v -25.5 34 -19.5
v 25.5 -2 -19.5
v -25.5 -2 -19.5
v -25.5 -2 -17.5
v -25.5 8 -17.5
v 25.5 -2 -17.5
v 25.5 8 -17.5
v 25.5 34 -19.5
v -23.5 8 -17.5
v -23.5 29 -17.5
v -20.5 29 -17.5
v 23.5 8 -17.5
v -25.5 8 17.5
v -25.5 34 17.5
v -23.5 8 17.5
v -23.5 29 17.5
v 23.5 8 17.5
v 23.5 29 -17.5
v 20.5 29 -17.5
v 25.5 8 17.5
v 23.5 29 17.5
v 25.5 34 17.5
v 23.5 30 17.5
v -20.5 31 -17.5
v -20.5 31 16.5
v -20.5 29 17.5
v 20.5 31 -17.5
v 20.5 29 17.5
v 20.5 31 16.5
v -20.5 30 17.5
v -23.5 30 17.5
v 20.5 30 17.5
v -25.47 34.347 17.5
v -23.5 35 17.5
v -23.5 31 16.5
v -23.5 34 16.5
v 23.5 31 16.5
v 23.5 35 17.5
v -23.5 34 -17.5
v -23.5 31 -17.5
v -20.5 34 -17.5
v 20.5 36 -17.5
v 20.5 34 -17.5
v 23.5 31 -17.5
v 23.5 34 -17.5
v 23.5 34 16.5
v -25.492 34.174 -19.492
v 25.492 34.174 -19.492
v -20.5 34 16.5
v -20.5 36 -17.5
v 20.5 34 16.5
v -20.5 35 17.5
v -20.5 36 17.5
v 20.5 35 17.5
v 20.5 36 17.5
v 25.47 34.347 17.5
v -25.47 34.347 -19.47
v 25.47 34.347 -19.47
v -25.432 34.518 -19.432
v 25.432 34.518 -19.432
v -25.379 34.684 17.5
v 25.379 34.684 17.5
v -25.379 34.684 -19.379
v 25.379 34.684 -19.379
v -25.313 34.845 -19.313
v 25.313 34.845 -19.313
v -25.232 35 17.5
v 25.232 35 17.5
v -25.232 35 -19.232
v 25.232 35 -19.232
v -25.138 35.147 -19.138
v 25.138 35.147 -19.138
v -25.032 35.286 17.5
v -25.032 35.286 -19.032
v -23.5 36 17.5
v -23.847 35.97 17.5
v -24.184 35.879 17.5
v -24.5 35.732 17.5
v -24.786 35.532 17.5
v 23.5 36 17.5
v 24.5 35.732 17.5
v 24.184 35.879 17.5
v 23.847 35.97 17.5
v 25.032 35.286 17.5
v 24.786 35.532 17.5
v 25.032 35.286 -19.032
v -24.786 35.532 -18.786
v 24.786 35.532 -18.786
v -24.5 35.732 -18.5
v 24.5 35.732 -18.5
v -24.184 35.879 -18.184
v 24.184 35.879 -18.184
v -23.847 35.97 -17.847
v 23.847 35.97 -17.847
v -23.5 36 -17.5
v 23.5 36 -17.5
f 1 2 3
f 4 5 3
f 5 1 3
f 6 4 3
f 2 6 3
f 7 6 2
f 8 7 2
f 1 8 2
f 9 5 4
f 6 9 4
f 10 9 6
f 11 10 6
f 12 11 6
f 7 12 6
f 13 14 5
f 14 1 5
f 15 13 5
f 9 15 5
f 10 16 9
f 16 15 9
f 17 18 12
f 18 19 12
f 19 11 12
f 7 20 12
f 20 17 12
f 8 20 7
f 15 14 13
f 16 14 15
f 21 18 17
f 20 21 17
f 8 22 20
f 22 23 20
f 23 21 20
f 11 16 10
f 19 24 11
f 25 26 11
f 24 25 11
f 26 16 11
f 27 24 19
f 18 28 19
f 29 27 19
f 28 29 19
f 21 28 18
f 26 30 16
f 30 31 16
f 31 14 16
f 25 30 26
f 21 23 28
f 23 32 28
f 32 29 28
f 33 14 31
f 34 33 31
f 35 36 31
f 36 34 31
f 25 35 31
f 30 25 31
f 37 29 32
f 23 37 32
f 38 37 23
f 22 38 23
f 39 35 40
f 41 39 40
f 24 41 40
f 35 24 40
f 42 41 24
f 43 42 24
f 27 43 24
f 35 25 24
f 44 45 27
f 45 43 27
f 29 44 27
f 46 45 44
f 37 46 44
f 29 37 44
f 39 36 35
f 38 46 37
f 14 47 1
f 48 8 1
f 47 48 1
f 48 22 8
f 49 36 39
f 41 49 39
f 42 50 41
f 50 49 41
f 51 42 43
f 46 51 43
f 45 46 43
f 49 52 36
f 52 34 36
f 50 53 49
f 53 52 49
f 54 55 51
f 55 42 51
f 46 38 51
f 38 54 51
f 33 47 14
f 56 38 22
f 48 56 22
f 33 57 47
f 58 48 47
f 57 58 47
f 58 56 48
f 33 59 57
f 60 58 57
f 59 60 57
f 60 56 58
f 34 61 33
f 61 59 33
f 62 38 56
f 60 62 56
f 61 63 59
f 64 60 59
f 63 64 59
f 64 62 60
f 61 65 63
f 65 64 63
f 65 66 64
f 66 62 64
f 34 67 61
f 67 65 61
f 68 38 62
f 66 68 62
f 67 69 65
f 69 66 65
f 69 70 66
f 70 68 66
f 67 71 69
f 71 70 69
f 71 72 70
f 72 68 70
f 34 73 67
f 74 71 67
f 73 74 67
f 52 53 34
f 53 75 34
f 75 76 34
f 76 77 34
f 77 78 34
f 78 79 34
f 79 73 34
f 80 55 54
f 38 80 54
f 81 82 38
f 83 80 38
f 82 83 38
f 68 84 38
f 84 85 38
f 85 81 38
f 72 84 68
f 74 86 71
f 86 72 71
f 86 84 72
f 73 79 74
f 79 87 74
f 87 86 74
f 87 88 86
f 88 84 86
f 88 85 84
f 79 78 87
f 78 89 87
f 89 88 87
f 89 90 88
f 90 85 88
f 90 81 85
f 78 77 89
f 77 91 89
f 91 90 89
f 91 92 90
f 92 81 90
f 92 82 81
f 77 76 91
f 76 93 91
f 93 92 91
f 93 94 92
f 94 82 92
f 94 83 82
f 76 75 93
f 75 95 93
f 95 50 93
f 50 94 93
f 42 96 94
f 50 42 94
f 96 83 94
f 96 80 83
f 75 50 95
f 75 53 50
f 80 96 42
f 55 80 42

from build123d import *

# Parameters (mm, degrees)
CROQUIS1_W              = 51
CROQUIS1_H              = 39
CROQUIS1_W_2            = 47
CROQUIS1_H_2            = 35
SALIENTE_EXTRUIR1_DEPTH = 36
CROQUIS2_W              = 51
CROQUIS2_H              = 39
SALIENTE_EXTRUIR2_DEPTH = 2
CROQUIS3_W              = 5
CROQUIS3_H              = 39
SALIENTE_EXTRUIR3_DEPTH = 2
CROQUIS4_W              = 51
CROQUIS4_H              = 2
CORTAR_EXTRUIR1_DEPTH   = 50.744346412
CROQUIS5_W              = 3
CROQUIS5_H              = 2
SALIENTE_EXTRUIR4_DEPTH = 35
REDONDEO1_R             = 2
CHAFL_N1_SIZE           = 1
CROQUIS6_W              = 35
CROQUIS6_H              = 10
CORTAR_EXTRUIR2_DEPTH   = 66.40068807


with BuildPart() as part:
    # Croquis1 → Saliente-Extruir1 (new body)
    with BuildSketch(Plane(origin=(0, 0, 0), x_dir=(1, 0, 0), z_dir=(0, 1, 0))):
        Rectangle(CROQUIS1_W, CROQUIS1_H)
        Rectangle(CROQUIS1_W_2, CROQUIS1_H_2, mode=Mode.SUBTRACT)
    extrude(amount=SALIENTE_EXTRUIR1_DEPTH)

    # Croquis2 → Saliente-Extruir2 (add)
    with BuildSketch(Plane.XZ):
        Rectangle(CROQUIS2_W, CROQUIS2_H)
    extrude(amount=SALIENTE_EXTRUIR2_DEPTH)

    # Croquis3 → Saliente-Extruir3 (add)
    with BuildSketch(Plane(origin=(0, 36, 0), x_dir=(1, 0, 0), z_dir=(0, 1, 0))):
        with Locations((-23, 0)):
            Rectangle(CROQUIS3_W, CROQUIS3_H)
        with Locations((23, 0)):
            Rectangle(CROQUIS3_W, CROQUIS3_H)
    extrude(amount=-SALIENTE_EXTRUIR3_DEPTH)

    # Croquis4 → Cortar-Extruir1 (cut, through all)
    with BuildSketch(Plane(origin=(0, 36, 0), x_dir=(1, 0, 0), z_dir=(0, 1, 0))):
        with Locations((0, -18.5)):
            Rectangle(CROQUIS4_W, CROQUIS4_H)
    extrude(amount=-CORTAR_EXTRUIR1_DEPTH, mode=Mode.SUBTRACT)

    # Croquis5 → Saliente-Extruir4 (add)
    with BuildSketch(Plane.XY.offset(17.5)):
        with Locations((-22, 30)):
            Rectangle(CROQUIS5_W, CROQUIS5_H)
        with Locations((22, 30)):
            Rectangle(CROQUIS5_W, CROQUIS5_H)
    extrude(amount=-SALIENTE_EXTRUIR4_DEPTH)

    # Redondeo1
    redondeo1_edges = [part.edges().sort_by_distance(p)[0] for p in [
        (-25.5, 36, -1),
        (0, 36, -19.5),
        (25.5, 36, -1),
    ]]
    fillet(redondeo1_edges, radius=REDONDEO1_R - 0.0001)  # a hair under: the kernel refuses the full size

    # Chaflán1
    chafl_n1_edges = [part.edges().sort_by_distance(p)[0] for p in [
        (-22, 31, 17.5),
        (22, 31, 17.5),
        (-22, 34, 17.5),
        (22, 34, 17.5),
    ]]
    chamfer(chafl_n1_edges, length=CHAFL_N1_SIZE)

    # Croquis6 → Cortar-Extruir2 (cut, through all)
    with BuildSketch(Plane(origin=(25.5, 0, 0), x_dir=(0, 0, -1), z_dir=(1, 0, 0))):
        with Locations((0, 3)):
            Rectangle(CROQUIS6_W, CROQUIS6_H)
    extrude(amount=-CORTAR_EXTRUIR2_DEPTH, mode=Mode.SUBTRACT)


solid = part.part
